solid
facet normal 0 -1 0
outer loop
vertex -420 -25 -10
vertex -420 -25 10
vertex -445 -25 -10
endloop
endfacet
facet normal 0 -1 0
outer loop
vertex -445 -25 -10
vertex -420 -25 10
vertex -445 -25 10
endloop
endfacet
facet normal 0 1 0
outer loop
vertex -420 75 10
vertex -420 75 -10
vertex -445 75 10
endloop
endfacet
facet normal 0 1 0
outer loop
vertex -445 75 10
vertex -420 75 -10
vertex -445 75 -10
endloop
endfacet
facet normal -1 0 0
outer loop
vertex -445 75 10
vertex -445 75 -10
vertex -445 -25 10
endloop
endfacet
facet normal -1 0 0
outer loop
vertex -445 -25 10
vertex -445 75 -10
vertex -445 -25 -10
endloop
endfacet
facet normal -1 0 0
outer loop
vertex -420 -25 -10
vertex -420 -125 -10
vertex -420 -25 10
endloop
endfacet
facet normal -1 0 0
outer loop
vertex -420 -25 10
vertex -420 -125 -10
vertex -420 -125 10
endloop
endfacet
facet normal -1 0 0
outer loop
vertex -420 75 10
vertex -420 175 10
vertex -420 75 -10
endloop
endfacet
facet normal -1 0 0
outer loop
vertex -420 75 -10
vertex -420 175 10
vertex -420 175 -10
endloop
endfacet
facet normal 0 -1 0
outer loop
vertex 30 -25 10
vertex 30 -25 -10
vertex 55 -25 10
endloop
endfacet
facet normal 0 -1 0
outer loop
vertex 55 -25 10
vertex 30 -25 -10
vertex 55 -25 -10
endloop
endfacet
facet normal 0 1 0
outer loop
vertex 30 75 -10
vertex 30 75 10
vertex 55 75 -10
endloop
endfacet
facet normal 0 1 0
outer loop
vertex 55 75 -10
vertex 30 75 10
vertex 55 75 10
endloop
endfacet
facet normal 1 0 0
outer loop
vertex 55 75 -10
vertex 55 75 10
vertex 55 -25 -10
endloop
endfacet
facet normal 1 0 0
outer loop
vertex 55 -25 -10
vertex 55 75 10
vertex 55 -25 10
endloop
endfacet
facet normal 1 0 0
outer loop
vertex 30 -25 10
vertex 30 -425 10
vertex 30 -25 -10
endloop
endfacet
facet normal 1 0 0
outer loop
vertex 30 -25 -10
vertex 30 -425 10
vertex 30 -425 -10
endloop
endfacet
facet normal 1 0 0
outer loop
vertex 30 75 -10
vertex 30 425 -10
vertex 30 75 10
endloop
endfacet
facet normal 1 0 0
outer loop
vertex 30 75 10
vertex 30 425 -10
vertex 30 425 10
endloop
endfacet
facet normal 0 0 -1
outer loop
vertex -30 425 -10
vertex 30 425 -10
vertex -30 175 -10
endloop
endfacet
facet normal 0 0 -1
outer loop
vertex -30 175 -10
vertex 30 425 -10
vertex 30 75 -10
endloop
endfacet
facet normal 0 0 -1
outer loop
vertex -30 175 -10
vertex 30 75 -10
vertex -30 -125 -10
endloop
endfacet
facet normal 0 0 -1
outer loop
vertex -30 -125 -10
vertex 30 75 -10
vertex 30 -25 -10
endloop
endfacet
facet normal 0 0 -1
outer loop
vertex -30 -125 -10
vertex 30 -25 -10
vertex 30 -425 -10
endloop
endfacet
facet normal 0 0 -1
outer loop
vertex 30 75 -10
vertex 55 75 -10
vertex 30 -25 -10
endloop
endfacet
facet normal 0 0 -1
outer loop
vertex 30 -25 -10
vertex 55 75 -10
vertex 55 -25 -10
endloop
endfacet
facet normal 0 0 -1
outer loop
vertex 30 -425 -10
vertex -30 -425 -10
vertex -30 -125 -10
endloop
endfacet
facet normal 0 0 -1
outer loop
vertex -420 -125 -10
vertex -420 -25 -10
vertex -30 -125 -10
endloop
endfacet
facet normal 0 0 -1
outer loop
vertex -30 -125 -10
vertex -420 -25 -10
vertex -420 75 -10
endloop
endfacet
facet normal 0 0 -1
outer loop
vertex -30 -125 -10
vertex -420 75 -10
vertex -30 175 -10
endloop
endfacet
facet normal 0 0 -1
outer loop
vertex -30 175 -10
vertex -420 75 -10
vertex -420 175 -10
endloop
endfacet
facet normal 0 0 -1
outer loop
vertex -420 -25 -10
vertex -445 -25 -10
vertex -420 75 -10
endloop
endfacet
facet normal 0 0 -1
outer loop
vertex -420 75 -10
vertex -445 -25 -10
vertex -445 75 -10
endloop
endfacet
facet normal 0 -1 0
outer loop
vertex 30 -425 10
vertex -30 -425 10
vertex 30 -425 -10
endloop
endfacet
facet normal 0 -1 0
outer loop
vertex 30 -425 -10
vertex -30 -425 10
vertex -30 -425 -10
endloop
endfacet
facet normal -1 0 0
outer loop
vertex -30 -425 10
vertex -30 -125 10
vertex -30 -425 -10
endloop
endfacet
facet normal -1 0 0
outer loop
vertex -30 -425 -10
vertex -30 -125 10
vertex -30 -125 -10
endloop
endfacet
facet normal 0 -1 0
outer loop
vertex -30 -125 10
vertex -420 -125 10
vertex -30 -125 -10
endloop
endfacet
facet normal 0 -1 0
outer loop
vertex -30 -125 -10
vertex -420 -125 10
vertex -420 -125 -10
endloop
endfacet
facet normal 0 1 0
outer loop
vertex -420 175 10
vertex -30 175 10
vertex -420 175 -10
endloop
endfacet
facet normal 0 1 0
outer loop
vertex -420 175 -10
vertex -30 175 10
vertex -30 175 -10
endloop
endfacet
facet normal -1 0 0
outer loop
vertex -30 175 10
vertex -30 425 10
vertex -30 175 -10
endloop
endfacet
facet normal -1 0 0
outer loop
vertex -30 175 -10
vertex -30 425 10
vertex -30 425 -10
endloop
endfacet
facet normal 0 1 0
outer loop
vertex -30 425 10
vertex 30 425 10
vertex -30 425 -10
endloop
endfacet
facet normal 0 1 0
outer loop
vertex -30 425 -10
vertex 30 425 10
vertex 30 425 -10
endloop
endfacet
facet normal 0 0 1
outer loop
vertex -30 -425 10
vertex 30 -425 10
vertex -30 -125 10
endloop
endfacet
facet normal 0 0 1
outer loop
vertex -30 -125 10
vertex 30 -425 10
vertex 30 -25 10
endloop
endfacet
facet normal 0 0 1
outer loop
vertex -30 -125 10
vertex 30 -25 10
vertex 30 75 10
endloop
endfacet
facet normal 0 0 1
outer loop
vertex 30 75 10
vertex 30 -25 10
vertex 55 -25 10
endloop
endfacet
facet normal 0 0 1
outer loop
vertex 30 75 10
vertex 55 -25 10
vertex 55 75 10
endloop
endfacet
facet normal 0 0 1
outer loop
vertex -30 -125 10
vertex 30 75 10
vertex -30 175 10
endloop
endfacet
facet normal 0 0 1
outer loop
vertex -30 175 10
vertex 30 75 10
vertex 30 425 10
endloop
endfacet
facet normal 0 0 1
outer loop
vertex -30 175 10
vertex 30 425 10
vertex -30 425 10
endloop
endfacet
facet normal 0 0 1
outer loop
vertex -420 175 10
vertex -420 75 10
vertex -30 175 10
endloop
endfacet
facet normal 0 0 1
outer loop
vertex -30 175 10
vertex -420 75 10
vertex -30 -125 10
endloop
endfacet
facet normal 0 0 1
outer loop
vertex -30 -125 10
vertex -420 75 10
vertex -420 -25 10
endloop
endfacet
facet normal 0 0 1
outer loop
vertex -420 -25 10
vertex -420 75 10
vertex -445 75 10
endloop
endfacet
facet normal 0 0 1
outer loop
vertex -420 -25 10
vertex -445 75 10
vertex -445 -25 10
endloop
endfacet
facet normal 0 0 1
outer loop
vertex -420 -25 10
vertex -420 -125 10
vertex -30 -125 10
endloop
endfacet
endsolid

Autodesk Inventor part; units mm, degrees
ref_plane "YZ Plane" through (0, 0, 0) normal (1, 0, 0) x (0, 1, 0)
ref_plane "XZ Plane" through (0, 0, 0) normal (0, 1, 0) x (-1, 0, 0)
ref_plane "XY Plane" through (0, 0, 0) normal (0, 0, 1) x (1, 0, 0)
sketch "草图1" plane through (0, 0, 0) normal (0, 0, 1) x (1, 0, 0)
  line L0 (-30, 425) -> (30, 425)
  line L1 (30, 425) -> (30, -425)
  line L2 (30, -425) -> (-30, -425)
  line L3 (-30, -425) -> (-30, 425)
  line L4 (-510, 0) -> (120, 0) projected
  line L5 (0, -595) -> (0, 595) projected
  line L6 (-420, 175) -> (-30, 175)
  line L7 (-30, 175) -> (-30, -125)
  line L8 (-30, -125) -> (-420, -125)
  line L9 (-420, -125) -> (-420, 175)
  point P0 (0, 0)
  point P1 (-30, 175)
  dimension "d0" = 60
  dimension "d1" = 850
  dimension "d2" = 390
  dimension "d3" = 250
  dimension "d4" = 300
extrude "拉伸1" add sketch "草图1" along normal mid plane 20
sketch "草图2" plane through (30, -425, 10) normal (1, 0, 0) x (0, 0, -1)
  line L0 (0, 0) -> (0, 850) projected
  line L1 (20, 850) -> (20, 0) projected
  line L2 (0, 500) -> (20, 500)
  line L3 (20, 500) -> (20, 400)
  line L4 (20, 400) -> (0, 400)
  line L5 (0, 400) -> (0, 500)
  line L6 (20, 850) -> (0, 850) projected
  point P0 (10, 425)
  point P1 (0, 400)
  dimension "d7" = 350
  dimension "d8" = 100
extrude "拉伸2" add sketch "草图2" along normal blind 25 contours L0 L2 L1 L4
sketch "草图3" plane through (-420, -125, 10) normal (-1, 0, 0) x (0, 0, 1)
  line L0 (-20, 0) -> (-20, 300) projected
  line L1 (0, 200) -> (0, 100) projected
  line L2 (-20, 200) -> (0, 200)
  line L3 (0, 200) -> (0, 100)
  line L4 (0, 100) -> (-20, 100)
  line L5 (-20, 100) -> (-20, 200)
  line L6 (-20, 550) -> (0, 550) projected
  point P0 (-10, 125)
  point P1 (-20, 100)
  point P2 (0, 200)
  dimension "d11" = 350
  dimension "d12" = 100
extrude "拉伸3" add sketch "草图3" along normal blind 25
properties part number "外壳挡板"
